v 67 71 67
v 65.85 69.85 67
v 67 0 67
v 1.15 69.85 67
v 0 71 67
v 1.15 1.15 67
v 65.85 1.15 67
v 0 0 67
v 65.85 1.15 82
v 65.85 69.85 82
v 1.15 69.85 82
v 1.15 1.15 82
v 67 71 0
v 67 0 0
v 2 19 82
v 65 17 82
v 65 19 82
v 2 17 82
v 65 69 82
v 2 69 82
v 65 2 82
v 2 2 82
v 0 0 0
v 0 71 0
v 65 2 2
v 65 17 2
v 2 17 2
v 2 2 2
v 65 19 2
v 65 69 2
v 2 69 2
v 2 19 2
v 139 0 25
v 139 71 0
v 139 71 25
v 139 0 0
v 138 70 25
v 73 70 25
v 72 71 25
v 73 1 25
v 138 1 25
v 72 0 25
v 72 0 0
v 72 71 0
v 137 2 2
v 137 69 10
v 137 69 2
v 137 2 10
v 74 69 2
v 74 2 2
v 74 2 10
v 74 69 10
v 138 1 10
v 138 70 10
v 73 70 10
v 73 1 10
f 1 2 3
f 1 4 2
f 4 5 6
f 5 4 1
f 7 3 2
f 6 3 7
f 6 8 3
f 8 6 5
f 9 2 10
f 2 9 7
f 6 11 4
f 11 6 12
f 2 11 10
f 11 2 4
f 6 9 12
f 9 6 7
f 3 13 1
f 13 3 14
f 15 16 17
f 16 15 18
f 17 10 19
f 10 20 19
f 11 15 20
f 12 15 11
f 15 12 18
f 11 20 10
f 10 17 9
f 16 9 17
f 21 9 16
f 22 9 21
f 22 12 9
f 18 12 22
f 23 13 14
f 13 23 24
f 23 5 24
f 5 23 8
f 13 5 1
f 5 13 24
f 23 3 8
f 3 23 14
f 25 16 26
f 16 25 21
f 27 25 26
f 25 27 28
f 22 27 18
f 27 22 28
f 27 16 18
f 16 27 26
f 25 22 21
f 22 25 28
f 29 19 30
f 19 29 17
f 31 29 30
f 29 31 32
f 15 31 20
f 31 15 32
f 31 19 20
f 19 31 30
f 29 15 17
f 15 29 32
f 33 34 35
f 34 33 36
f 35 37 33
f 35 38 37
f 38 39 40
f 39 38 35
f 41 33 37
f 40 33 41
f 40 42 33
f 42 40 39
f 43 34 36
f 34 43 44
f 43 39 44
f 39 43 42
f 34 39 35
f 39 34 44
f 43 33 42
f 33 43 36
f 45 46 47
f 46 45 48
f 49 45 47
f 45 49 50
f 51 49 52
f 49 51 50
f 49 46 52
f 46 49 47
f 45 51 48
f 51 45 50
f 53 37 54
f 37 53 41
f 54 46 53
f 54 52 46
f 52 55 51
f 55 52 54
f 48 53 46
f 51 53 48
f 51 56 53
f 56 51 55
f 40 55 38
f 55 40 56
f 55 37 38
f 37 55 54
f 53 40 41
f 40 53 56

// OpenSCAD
// ---------------------------------------------------------------
// Box with friction-fit slide-on lid and one divider (square corners)
//
// Same construction as sliding_lid_box.scad, plus a divider wall
// across the depth axis splitting the interior into two compartments.
// All compartment sizes are inside dimensions.
// ---------------------------------------------------------------

/* [Inside dimensions] */
inside_x = 63;   // interior width
depth_a  = 15;   // interior depth of first compartment
depth_b  = 50;   // interior depth of second compartment
inside_z = 88;   // interior height (floor to underside of lid top)

/* [Walls] */
wall    = 2;     // box wall thickness (also floor and divider thickness)
lid_top = 2;     // lid top plate thickness

/* [Lid fit] */
lip_height = 15;   // depth of the lid skirt / height of the inset lip
skirt     = 1;     // lid skirt wall thickness
clearance = 0.15;  // gap between skirt and lip per side; tune for friction
edge_drop = 8;     // mm of full box wall carried by the lid (above the skirt)

/* [View] */
// "print"     -> both parts flat on the bed, side by side
// "assembled" -> lid on the box
// "open"      -> lid hovering above the box
view = "print"; // [print, assembled, open]

// ---------------------------------------------------------------
// Derived dimensions
// ---------------------------------------------------------------
inside_y = depth_a + wall + depth_b;   // total interior span incl. divider
outer_x = inside_x + 2 * wall;
outer_y = inside_y + 2 * wall;
box_inside_z = inside_z - edge_drop;   // interior height of the box part alone
box_h   = wall + box_inside_z;         // outer box height (floor + interior)

lip_wall = wall - skirt - clearance;   // remaining wall thickness at the lip
lip_x = inside_x + 2 * lip_wall;       // lip outer footprint
lip_y = inside_y + 2 * lip_wall;

assert(lip_wall >= 0.8, "wall too thin: increase wall or reduce skirt/clearance");
assert(box_inside_z > lip_height, "inside_z - edge_drop must exceed lip_height");

// ---------------------------------------------------------------
// Parts
// ---------------------------------------------------------------
module box() {
    difference() {
        // full outer shell
        cube([outer_x, outer_y, box_h]);
        // compartment A
        translate([wall, wall, wall])
            cube([inside_x, depth_a, box_inside_z + 1]);
        // compartment B (divider wall left standing in between)
        translate([wall, wall + depth_a + wall, wall])
            cube([inside_x, depth_b, box_inside_z + 1]);
        // step the top of the wall inward to form the lip
        difference() {
            translate([-1, -1, box_h - lip_height])
                cube([outer_x + 2, outer_y + 2, lip_height + 1]);
            translate([(outer_x - lip_x) / 2, (outer_y - lip_y) / 2, box_h - lip_height - 1])
                cube([lip_x, lip_y, lip_height + 2]);
        }
    }
}

module lid() {
    // modeled upside down (top plate on the bed) - print orientation
    difference() {
        cube([outer_x, outer_y, lid_top + edge_drop + lip_height]);
        // interior: the top edge_drop of the box lives in the lid (full wall)
        translate([wall, wall, lid_top])
            cube([inside_x, inside_y, edge_drop + lip_height + 1]);
        // cavity that receives the lip (friction fit)
        translate([(outer_x - lip_x) / 2 - clearance,
                   (outer_y - lip_y) / 2 - clearance,
                   lid_top + edge_drop])
            cube([lip_x + 2 * clearance, lip_y + 2 * clearance, lip_height + 1]);
    }
}

// lid flipped right-side up and placed on the box
module lid_on_box(lift = 0) {
    translate([0, 0, box_h + edge_drop + lid_top + lift])
        rotate([180, 0, 0])
            translate([0, -outer_y, 0])
                lid();
}

// ---------------------------------------------------------------
// Layout
// ---------------------------------------------------------------
if (view == "print") {
    box();
    translate([outer_x + 5, 0, 0]) lid();
} else if (view == "assembled") {
    box();
    lid_on_box();
} else { // open
    box();
    lid_on_box(30);
}
